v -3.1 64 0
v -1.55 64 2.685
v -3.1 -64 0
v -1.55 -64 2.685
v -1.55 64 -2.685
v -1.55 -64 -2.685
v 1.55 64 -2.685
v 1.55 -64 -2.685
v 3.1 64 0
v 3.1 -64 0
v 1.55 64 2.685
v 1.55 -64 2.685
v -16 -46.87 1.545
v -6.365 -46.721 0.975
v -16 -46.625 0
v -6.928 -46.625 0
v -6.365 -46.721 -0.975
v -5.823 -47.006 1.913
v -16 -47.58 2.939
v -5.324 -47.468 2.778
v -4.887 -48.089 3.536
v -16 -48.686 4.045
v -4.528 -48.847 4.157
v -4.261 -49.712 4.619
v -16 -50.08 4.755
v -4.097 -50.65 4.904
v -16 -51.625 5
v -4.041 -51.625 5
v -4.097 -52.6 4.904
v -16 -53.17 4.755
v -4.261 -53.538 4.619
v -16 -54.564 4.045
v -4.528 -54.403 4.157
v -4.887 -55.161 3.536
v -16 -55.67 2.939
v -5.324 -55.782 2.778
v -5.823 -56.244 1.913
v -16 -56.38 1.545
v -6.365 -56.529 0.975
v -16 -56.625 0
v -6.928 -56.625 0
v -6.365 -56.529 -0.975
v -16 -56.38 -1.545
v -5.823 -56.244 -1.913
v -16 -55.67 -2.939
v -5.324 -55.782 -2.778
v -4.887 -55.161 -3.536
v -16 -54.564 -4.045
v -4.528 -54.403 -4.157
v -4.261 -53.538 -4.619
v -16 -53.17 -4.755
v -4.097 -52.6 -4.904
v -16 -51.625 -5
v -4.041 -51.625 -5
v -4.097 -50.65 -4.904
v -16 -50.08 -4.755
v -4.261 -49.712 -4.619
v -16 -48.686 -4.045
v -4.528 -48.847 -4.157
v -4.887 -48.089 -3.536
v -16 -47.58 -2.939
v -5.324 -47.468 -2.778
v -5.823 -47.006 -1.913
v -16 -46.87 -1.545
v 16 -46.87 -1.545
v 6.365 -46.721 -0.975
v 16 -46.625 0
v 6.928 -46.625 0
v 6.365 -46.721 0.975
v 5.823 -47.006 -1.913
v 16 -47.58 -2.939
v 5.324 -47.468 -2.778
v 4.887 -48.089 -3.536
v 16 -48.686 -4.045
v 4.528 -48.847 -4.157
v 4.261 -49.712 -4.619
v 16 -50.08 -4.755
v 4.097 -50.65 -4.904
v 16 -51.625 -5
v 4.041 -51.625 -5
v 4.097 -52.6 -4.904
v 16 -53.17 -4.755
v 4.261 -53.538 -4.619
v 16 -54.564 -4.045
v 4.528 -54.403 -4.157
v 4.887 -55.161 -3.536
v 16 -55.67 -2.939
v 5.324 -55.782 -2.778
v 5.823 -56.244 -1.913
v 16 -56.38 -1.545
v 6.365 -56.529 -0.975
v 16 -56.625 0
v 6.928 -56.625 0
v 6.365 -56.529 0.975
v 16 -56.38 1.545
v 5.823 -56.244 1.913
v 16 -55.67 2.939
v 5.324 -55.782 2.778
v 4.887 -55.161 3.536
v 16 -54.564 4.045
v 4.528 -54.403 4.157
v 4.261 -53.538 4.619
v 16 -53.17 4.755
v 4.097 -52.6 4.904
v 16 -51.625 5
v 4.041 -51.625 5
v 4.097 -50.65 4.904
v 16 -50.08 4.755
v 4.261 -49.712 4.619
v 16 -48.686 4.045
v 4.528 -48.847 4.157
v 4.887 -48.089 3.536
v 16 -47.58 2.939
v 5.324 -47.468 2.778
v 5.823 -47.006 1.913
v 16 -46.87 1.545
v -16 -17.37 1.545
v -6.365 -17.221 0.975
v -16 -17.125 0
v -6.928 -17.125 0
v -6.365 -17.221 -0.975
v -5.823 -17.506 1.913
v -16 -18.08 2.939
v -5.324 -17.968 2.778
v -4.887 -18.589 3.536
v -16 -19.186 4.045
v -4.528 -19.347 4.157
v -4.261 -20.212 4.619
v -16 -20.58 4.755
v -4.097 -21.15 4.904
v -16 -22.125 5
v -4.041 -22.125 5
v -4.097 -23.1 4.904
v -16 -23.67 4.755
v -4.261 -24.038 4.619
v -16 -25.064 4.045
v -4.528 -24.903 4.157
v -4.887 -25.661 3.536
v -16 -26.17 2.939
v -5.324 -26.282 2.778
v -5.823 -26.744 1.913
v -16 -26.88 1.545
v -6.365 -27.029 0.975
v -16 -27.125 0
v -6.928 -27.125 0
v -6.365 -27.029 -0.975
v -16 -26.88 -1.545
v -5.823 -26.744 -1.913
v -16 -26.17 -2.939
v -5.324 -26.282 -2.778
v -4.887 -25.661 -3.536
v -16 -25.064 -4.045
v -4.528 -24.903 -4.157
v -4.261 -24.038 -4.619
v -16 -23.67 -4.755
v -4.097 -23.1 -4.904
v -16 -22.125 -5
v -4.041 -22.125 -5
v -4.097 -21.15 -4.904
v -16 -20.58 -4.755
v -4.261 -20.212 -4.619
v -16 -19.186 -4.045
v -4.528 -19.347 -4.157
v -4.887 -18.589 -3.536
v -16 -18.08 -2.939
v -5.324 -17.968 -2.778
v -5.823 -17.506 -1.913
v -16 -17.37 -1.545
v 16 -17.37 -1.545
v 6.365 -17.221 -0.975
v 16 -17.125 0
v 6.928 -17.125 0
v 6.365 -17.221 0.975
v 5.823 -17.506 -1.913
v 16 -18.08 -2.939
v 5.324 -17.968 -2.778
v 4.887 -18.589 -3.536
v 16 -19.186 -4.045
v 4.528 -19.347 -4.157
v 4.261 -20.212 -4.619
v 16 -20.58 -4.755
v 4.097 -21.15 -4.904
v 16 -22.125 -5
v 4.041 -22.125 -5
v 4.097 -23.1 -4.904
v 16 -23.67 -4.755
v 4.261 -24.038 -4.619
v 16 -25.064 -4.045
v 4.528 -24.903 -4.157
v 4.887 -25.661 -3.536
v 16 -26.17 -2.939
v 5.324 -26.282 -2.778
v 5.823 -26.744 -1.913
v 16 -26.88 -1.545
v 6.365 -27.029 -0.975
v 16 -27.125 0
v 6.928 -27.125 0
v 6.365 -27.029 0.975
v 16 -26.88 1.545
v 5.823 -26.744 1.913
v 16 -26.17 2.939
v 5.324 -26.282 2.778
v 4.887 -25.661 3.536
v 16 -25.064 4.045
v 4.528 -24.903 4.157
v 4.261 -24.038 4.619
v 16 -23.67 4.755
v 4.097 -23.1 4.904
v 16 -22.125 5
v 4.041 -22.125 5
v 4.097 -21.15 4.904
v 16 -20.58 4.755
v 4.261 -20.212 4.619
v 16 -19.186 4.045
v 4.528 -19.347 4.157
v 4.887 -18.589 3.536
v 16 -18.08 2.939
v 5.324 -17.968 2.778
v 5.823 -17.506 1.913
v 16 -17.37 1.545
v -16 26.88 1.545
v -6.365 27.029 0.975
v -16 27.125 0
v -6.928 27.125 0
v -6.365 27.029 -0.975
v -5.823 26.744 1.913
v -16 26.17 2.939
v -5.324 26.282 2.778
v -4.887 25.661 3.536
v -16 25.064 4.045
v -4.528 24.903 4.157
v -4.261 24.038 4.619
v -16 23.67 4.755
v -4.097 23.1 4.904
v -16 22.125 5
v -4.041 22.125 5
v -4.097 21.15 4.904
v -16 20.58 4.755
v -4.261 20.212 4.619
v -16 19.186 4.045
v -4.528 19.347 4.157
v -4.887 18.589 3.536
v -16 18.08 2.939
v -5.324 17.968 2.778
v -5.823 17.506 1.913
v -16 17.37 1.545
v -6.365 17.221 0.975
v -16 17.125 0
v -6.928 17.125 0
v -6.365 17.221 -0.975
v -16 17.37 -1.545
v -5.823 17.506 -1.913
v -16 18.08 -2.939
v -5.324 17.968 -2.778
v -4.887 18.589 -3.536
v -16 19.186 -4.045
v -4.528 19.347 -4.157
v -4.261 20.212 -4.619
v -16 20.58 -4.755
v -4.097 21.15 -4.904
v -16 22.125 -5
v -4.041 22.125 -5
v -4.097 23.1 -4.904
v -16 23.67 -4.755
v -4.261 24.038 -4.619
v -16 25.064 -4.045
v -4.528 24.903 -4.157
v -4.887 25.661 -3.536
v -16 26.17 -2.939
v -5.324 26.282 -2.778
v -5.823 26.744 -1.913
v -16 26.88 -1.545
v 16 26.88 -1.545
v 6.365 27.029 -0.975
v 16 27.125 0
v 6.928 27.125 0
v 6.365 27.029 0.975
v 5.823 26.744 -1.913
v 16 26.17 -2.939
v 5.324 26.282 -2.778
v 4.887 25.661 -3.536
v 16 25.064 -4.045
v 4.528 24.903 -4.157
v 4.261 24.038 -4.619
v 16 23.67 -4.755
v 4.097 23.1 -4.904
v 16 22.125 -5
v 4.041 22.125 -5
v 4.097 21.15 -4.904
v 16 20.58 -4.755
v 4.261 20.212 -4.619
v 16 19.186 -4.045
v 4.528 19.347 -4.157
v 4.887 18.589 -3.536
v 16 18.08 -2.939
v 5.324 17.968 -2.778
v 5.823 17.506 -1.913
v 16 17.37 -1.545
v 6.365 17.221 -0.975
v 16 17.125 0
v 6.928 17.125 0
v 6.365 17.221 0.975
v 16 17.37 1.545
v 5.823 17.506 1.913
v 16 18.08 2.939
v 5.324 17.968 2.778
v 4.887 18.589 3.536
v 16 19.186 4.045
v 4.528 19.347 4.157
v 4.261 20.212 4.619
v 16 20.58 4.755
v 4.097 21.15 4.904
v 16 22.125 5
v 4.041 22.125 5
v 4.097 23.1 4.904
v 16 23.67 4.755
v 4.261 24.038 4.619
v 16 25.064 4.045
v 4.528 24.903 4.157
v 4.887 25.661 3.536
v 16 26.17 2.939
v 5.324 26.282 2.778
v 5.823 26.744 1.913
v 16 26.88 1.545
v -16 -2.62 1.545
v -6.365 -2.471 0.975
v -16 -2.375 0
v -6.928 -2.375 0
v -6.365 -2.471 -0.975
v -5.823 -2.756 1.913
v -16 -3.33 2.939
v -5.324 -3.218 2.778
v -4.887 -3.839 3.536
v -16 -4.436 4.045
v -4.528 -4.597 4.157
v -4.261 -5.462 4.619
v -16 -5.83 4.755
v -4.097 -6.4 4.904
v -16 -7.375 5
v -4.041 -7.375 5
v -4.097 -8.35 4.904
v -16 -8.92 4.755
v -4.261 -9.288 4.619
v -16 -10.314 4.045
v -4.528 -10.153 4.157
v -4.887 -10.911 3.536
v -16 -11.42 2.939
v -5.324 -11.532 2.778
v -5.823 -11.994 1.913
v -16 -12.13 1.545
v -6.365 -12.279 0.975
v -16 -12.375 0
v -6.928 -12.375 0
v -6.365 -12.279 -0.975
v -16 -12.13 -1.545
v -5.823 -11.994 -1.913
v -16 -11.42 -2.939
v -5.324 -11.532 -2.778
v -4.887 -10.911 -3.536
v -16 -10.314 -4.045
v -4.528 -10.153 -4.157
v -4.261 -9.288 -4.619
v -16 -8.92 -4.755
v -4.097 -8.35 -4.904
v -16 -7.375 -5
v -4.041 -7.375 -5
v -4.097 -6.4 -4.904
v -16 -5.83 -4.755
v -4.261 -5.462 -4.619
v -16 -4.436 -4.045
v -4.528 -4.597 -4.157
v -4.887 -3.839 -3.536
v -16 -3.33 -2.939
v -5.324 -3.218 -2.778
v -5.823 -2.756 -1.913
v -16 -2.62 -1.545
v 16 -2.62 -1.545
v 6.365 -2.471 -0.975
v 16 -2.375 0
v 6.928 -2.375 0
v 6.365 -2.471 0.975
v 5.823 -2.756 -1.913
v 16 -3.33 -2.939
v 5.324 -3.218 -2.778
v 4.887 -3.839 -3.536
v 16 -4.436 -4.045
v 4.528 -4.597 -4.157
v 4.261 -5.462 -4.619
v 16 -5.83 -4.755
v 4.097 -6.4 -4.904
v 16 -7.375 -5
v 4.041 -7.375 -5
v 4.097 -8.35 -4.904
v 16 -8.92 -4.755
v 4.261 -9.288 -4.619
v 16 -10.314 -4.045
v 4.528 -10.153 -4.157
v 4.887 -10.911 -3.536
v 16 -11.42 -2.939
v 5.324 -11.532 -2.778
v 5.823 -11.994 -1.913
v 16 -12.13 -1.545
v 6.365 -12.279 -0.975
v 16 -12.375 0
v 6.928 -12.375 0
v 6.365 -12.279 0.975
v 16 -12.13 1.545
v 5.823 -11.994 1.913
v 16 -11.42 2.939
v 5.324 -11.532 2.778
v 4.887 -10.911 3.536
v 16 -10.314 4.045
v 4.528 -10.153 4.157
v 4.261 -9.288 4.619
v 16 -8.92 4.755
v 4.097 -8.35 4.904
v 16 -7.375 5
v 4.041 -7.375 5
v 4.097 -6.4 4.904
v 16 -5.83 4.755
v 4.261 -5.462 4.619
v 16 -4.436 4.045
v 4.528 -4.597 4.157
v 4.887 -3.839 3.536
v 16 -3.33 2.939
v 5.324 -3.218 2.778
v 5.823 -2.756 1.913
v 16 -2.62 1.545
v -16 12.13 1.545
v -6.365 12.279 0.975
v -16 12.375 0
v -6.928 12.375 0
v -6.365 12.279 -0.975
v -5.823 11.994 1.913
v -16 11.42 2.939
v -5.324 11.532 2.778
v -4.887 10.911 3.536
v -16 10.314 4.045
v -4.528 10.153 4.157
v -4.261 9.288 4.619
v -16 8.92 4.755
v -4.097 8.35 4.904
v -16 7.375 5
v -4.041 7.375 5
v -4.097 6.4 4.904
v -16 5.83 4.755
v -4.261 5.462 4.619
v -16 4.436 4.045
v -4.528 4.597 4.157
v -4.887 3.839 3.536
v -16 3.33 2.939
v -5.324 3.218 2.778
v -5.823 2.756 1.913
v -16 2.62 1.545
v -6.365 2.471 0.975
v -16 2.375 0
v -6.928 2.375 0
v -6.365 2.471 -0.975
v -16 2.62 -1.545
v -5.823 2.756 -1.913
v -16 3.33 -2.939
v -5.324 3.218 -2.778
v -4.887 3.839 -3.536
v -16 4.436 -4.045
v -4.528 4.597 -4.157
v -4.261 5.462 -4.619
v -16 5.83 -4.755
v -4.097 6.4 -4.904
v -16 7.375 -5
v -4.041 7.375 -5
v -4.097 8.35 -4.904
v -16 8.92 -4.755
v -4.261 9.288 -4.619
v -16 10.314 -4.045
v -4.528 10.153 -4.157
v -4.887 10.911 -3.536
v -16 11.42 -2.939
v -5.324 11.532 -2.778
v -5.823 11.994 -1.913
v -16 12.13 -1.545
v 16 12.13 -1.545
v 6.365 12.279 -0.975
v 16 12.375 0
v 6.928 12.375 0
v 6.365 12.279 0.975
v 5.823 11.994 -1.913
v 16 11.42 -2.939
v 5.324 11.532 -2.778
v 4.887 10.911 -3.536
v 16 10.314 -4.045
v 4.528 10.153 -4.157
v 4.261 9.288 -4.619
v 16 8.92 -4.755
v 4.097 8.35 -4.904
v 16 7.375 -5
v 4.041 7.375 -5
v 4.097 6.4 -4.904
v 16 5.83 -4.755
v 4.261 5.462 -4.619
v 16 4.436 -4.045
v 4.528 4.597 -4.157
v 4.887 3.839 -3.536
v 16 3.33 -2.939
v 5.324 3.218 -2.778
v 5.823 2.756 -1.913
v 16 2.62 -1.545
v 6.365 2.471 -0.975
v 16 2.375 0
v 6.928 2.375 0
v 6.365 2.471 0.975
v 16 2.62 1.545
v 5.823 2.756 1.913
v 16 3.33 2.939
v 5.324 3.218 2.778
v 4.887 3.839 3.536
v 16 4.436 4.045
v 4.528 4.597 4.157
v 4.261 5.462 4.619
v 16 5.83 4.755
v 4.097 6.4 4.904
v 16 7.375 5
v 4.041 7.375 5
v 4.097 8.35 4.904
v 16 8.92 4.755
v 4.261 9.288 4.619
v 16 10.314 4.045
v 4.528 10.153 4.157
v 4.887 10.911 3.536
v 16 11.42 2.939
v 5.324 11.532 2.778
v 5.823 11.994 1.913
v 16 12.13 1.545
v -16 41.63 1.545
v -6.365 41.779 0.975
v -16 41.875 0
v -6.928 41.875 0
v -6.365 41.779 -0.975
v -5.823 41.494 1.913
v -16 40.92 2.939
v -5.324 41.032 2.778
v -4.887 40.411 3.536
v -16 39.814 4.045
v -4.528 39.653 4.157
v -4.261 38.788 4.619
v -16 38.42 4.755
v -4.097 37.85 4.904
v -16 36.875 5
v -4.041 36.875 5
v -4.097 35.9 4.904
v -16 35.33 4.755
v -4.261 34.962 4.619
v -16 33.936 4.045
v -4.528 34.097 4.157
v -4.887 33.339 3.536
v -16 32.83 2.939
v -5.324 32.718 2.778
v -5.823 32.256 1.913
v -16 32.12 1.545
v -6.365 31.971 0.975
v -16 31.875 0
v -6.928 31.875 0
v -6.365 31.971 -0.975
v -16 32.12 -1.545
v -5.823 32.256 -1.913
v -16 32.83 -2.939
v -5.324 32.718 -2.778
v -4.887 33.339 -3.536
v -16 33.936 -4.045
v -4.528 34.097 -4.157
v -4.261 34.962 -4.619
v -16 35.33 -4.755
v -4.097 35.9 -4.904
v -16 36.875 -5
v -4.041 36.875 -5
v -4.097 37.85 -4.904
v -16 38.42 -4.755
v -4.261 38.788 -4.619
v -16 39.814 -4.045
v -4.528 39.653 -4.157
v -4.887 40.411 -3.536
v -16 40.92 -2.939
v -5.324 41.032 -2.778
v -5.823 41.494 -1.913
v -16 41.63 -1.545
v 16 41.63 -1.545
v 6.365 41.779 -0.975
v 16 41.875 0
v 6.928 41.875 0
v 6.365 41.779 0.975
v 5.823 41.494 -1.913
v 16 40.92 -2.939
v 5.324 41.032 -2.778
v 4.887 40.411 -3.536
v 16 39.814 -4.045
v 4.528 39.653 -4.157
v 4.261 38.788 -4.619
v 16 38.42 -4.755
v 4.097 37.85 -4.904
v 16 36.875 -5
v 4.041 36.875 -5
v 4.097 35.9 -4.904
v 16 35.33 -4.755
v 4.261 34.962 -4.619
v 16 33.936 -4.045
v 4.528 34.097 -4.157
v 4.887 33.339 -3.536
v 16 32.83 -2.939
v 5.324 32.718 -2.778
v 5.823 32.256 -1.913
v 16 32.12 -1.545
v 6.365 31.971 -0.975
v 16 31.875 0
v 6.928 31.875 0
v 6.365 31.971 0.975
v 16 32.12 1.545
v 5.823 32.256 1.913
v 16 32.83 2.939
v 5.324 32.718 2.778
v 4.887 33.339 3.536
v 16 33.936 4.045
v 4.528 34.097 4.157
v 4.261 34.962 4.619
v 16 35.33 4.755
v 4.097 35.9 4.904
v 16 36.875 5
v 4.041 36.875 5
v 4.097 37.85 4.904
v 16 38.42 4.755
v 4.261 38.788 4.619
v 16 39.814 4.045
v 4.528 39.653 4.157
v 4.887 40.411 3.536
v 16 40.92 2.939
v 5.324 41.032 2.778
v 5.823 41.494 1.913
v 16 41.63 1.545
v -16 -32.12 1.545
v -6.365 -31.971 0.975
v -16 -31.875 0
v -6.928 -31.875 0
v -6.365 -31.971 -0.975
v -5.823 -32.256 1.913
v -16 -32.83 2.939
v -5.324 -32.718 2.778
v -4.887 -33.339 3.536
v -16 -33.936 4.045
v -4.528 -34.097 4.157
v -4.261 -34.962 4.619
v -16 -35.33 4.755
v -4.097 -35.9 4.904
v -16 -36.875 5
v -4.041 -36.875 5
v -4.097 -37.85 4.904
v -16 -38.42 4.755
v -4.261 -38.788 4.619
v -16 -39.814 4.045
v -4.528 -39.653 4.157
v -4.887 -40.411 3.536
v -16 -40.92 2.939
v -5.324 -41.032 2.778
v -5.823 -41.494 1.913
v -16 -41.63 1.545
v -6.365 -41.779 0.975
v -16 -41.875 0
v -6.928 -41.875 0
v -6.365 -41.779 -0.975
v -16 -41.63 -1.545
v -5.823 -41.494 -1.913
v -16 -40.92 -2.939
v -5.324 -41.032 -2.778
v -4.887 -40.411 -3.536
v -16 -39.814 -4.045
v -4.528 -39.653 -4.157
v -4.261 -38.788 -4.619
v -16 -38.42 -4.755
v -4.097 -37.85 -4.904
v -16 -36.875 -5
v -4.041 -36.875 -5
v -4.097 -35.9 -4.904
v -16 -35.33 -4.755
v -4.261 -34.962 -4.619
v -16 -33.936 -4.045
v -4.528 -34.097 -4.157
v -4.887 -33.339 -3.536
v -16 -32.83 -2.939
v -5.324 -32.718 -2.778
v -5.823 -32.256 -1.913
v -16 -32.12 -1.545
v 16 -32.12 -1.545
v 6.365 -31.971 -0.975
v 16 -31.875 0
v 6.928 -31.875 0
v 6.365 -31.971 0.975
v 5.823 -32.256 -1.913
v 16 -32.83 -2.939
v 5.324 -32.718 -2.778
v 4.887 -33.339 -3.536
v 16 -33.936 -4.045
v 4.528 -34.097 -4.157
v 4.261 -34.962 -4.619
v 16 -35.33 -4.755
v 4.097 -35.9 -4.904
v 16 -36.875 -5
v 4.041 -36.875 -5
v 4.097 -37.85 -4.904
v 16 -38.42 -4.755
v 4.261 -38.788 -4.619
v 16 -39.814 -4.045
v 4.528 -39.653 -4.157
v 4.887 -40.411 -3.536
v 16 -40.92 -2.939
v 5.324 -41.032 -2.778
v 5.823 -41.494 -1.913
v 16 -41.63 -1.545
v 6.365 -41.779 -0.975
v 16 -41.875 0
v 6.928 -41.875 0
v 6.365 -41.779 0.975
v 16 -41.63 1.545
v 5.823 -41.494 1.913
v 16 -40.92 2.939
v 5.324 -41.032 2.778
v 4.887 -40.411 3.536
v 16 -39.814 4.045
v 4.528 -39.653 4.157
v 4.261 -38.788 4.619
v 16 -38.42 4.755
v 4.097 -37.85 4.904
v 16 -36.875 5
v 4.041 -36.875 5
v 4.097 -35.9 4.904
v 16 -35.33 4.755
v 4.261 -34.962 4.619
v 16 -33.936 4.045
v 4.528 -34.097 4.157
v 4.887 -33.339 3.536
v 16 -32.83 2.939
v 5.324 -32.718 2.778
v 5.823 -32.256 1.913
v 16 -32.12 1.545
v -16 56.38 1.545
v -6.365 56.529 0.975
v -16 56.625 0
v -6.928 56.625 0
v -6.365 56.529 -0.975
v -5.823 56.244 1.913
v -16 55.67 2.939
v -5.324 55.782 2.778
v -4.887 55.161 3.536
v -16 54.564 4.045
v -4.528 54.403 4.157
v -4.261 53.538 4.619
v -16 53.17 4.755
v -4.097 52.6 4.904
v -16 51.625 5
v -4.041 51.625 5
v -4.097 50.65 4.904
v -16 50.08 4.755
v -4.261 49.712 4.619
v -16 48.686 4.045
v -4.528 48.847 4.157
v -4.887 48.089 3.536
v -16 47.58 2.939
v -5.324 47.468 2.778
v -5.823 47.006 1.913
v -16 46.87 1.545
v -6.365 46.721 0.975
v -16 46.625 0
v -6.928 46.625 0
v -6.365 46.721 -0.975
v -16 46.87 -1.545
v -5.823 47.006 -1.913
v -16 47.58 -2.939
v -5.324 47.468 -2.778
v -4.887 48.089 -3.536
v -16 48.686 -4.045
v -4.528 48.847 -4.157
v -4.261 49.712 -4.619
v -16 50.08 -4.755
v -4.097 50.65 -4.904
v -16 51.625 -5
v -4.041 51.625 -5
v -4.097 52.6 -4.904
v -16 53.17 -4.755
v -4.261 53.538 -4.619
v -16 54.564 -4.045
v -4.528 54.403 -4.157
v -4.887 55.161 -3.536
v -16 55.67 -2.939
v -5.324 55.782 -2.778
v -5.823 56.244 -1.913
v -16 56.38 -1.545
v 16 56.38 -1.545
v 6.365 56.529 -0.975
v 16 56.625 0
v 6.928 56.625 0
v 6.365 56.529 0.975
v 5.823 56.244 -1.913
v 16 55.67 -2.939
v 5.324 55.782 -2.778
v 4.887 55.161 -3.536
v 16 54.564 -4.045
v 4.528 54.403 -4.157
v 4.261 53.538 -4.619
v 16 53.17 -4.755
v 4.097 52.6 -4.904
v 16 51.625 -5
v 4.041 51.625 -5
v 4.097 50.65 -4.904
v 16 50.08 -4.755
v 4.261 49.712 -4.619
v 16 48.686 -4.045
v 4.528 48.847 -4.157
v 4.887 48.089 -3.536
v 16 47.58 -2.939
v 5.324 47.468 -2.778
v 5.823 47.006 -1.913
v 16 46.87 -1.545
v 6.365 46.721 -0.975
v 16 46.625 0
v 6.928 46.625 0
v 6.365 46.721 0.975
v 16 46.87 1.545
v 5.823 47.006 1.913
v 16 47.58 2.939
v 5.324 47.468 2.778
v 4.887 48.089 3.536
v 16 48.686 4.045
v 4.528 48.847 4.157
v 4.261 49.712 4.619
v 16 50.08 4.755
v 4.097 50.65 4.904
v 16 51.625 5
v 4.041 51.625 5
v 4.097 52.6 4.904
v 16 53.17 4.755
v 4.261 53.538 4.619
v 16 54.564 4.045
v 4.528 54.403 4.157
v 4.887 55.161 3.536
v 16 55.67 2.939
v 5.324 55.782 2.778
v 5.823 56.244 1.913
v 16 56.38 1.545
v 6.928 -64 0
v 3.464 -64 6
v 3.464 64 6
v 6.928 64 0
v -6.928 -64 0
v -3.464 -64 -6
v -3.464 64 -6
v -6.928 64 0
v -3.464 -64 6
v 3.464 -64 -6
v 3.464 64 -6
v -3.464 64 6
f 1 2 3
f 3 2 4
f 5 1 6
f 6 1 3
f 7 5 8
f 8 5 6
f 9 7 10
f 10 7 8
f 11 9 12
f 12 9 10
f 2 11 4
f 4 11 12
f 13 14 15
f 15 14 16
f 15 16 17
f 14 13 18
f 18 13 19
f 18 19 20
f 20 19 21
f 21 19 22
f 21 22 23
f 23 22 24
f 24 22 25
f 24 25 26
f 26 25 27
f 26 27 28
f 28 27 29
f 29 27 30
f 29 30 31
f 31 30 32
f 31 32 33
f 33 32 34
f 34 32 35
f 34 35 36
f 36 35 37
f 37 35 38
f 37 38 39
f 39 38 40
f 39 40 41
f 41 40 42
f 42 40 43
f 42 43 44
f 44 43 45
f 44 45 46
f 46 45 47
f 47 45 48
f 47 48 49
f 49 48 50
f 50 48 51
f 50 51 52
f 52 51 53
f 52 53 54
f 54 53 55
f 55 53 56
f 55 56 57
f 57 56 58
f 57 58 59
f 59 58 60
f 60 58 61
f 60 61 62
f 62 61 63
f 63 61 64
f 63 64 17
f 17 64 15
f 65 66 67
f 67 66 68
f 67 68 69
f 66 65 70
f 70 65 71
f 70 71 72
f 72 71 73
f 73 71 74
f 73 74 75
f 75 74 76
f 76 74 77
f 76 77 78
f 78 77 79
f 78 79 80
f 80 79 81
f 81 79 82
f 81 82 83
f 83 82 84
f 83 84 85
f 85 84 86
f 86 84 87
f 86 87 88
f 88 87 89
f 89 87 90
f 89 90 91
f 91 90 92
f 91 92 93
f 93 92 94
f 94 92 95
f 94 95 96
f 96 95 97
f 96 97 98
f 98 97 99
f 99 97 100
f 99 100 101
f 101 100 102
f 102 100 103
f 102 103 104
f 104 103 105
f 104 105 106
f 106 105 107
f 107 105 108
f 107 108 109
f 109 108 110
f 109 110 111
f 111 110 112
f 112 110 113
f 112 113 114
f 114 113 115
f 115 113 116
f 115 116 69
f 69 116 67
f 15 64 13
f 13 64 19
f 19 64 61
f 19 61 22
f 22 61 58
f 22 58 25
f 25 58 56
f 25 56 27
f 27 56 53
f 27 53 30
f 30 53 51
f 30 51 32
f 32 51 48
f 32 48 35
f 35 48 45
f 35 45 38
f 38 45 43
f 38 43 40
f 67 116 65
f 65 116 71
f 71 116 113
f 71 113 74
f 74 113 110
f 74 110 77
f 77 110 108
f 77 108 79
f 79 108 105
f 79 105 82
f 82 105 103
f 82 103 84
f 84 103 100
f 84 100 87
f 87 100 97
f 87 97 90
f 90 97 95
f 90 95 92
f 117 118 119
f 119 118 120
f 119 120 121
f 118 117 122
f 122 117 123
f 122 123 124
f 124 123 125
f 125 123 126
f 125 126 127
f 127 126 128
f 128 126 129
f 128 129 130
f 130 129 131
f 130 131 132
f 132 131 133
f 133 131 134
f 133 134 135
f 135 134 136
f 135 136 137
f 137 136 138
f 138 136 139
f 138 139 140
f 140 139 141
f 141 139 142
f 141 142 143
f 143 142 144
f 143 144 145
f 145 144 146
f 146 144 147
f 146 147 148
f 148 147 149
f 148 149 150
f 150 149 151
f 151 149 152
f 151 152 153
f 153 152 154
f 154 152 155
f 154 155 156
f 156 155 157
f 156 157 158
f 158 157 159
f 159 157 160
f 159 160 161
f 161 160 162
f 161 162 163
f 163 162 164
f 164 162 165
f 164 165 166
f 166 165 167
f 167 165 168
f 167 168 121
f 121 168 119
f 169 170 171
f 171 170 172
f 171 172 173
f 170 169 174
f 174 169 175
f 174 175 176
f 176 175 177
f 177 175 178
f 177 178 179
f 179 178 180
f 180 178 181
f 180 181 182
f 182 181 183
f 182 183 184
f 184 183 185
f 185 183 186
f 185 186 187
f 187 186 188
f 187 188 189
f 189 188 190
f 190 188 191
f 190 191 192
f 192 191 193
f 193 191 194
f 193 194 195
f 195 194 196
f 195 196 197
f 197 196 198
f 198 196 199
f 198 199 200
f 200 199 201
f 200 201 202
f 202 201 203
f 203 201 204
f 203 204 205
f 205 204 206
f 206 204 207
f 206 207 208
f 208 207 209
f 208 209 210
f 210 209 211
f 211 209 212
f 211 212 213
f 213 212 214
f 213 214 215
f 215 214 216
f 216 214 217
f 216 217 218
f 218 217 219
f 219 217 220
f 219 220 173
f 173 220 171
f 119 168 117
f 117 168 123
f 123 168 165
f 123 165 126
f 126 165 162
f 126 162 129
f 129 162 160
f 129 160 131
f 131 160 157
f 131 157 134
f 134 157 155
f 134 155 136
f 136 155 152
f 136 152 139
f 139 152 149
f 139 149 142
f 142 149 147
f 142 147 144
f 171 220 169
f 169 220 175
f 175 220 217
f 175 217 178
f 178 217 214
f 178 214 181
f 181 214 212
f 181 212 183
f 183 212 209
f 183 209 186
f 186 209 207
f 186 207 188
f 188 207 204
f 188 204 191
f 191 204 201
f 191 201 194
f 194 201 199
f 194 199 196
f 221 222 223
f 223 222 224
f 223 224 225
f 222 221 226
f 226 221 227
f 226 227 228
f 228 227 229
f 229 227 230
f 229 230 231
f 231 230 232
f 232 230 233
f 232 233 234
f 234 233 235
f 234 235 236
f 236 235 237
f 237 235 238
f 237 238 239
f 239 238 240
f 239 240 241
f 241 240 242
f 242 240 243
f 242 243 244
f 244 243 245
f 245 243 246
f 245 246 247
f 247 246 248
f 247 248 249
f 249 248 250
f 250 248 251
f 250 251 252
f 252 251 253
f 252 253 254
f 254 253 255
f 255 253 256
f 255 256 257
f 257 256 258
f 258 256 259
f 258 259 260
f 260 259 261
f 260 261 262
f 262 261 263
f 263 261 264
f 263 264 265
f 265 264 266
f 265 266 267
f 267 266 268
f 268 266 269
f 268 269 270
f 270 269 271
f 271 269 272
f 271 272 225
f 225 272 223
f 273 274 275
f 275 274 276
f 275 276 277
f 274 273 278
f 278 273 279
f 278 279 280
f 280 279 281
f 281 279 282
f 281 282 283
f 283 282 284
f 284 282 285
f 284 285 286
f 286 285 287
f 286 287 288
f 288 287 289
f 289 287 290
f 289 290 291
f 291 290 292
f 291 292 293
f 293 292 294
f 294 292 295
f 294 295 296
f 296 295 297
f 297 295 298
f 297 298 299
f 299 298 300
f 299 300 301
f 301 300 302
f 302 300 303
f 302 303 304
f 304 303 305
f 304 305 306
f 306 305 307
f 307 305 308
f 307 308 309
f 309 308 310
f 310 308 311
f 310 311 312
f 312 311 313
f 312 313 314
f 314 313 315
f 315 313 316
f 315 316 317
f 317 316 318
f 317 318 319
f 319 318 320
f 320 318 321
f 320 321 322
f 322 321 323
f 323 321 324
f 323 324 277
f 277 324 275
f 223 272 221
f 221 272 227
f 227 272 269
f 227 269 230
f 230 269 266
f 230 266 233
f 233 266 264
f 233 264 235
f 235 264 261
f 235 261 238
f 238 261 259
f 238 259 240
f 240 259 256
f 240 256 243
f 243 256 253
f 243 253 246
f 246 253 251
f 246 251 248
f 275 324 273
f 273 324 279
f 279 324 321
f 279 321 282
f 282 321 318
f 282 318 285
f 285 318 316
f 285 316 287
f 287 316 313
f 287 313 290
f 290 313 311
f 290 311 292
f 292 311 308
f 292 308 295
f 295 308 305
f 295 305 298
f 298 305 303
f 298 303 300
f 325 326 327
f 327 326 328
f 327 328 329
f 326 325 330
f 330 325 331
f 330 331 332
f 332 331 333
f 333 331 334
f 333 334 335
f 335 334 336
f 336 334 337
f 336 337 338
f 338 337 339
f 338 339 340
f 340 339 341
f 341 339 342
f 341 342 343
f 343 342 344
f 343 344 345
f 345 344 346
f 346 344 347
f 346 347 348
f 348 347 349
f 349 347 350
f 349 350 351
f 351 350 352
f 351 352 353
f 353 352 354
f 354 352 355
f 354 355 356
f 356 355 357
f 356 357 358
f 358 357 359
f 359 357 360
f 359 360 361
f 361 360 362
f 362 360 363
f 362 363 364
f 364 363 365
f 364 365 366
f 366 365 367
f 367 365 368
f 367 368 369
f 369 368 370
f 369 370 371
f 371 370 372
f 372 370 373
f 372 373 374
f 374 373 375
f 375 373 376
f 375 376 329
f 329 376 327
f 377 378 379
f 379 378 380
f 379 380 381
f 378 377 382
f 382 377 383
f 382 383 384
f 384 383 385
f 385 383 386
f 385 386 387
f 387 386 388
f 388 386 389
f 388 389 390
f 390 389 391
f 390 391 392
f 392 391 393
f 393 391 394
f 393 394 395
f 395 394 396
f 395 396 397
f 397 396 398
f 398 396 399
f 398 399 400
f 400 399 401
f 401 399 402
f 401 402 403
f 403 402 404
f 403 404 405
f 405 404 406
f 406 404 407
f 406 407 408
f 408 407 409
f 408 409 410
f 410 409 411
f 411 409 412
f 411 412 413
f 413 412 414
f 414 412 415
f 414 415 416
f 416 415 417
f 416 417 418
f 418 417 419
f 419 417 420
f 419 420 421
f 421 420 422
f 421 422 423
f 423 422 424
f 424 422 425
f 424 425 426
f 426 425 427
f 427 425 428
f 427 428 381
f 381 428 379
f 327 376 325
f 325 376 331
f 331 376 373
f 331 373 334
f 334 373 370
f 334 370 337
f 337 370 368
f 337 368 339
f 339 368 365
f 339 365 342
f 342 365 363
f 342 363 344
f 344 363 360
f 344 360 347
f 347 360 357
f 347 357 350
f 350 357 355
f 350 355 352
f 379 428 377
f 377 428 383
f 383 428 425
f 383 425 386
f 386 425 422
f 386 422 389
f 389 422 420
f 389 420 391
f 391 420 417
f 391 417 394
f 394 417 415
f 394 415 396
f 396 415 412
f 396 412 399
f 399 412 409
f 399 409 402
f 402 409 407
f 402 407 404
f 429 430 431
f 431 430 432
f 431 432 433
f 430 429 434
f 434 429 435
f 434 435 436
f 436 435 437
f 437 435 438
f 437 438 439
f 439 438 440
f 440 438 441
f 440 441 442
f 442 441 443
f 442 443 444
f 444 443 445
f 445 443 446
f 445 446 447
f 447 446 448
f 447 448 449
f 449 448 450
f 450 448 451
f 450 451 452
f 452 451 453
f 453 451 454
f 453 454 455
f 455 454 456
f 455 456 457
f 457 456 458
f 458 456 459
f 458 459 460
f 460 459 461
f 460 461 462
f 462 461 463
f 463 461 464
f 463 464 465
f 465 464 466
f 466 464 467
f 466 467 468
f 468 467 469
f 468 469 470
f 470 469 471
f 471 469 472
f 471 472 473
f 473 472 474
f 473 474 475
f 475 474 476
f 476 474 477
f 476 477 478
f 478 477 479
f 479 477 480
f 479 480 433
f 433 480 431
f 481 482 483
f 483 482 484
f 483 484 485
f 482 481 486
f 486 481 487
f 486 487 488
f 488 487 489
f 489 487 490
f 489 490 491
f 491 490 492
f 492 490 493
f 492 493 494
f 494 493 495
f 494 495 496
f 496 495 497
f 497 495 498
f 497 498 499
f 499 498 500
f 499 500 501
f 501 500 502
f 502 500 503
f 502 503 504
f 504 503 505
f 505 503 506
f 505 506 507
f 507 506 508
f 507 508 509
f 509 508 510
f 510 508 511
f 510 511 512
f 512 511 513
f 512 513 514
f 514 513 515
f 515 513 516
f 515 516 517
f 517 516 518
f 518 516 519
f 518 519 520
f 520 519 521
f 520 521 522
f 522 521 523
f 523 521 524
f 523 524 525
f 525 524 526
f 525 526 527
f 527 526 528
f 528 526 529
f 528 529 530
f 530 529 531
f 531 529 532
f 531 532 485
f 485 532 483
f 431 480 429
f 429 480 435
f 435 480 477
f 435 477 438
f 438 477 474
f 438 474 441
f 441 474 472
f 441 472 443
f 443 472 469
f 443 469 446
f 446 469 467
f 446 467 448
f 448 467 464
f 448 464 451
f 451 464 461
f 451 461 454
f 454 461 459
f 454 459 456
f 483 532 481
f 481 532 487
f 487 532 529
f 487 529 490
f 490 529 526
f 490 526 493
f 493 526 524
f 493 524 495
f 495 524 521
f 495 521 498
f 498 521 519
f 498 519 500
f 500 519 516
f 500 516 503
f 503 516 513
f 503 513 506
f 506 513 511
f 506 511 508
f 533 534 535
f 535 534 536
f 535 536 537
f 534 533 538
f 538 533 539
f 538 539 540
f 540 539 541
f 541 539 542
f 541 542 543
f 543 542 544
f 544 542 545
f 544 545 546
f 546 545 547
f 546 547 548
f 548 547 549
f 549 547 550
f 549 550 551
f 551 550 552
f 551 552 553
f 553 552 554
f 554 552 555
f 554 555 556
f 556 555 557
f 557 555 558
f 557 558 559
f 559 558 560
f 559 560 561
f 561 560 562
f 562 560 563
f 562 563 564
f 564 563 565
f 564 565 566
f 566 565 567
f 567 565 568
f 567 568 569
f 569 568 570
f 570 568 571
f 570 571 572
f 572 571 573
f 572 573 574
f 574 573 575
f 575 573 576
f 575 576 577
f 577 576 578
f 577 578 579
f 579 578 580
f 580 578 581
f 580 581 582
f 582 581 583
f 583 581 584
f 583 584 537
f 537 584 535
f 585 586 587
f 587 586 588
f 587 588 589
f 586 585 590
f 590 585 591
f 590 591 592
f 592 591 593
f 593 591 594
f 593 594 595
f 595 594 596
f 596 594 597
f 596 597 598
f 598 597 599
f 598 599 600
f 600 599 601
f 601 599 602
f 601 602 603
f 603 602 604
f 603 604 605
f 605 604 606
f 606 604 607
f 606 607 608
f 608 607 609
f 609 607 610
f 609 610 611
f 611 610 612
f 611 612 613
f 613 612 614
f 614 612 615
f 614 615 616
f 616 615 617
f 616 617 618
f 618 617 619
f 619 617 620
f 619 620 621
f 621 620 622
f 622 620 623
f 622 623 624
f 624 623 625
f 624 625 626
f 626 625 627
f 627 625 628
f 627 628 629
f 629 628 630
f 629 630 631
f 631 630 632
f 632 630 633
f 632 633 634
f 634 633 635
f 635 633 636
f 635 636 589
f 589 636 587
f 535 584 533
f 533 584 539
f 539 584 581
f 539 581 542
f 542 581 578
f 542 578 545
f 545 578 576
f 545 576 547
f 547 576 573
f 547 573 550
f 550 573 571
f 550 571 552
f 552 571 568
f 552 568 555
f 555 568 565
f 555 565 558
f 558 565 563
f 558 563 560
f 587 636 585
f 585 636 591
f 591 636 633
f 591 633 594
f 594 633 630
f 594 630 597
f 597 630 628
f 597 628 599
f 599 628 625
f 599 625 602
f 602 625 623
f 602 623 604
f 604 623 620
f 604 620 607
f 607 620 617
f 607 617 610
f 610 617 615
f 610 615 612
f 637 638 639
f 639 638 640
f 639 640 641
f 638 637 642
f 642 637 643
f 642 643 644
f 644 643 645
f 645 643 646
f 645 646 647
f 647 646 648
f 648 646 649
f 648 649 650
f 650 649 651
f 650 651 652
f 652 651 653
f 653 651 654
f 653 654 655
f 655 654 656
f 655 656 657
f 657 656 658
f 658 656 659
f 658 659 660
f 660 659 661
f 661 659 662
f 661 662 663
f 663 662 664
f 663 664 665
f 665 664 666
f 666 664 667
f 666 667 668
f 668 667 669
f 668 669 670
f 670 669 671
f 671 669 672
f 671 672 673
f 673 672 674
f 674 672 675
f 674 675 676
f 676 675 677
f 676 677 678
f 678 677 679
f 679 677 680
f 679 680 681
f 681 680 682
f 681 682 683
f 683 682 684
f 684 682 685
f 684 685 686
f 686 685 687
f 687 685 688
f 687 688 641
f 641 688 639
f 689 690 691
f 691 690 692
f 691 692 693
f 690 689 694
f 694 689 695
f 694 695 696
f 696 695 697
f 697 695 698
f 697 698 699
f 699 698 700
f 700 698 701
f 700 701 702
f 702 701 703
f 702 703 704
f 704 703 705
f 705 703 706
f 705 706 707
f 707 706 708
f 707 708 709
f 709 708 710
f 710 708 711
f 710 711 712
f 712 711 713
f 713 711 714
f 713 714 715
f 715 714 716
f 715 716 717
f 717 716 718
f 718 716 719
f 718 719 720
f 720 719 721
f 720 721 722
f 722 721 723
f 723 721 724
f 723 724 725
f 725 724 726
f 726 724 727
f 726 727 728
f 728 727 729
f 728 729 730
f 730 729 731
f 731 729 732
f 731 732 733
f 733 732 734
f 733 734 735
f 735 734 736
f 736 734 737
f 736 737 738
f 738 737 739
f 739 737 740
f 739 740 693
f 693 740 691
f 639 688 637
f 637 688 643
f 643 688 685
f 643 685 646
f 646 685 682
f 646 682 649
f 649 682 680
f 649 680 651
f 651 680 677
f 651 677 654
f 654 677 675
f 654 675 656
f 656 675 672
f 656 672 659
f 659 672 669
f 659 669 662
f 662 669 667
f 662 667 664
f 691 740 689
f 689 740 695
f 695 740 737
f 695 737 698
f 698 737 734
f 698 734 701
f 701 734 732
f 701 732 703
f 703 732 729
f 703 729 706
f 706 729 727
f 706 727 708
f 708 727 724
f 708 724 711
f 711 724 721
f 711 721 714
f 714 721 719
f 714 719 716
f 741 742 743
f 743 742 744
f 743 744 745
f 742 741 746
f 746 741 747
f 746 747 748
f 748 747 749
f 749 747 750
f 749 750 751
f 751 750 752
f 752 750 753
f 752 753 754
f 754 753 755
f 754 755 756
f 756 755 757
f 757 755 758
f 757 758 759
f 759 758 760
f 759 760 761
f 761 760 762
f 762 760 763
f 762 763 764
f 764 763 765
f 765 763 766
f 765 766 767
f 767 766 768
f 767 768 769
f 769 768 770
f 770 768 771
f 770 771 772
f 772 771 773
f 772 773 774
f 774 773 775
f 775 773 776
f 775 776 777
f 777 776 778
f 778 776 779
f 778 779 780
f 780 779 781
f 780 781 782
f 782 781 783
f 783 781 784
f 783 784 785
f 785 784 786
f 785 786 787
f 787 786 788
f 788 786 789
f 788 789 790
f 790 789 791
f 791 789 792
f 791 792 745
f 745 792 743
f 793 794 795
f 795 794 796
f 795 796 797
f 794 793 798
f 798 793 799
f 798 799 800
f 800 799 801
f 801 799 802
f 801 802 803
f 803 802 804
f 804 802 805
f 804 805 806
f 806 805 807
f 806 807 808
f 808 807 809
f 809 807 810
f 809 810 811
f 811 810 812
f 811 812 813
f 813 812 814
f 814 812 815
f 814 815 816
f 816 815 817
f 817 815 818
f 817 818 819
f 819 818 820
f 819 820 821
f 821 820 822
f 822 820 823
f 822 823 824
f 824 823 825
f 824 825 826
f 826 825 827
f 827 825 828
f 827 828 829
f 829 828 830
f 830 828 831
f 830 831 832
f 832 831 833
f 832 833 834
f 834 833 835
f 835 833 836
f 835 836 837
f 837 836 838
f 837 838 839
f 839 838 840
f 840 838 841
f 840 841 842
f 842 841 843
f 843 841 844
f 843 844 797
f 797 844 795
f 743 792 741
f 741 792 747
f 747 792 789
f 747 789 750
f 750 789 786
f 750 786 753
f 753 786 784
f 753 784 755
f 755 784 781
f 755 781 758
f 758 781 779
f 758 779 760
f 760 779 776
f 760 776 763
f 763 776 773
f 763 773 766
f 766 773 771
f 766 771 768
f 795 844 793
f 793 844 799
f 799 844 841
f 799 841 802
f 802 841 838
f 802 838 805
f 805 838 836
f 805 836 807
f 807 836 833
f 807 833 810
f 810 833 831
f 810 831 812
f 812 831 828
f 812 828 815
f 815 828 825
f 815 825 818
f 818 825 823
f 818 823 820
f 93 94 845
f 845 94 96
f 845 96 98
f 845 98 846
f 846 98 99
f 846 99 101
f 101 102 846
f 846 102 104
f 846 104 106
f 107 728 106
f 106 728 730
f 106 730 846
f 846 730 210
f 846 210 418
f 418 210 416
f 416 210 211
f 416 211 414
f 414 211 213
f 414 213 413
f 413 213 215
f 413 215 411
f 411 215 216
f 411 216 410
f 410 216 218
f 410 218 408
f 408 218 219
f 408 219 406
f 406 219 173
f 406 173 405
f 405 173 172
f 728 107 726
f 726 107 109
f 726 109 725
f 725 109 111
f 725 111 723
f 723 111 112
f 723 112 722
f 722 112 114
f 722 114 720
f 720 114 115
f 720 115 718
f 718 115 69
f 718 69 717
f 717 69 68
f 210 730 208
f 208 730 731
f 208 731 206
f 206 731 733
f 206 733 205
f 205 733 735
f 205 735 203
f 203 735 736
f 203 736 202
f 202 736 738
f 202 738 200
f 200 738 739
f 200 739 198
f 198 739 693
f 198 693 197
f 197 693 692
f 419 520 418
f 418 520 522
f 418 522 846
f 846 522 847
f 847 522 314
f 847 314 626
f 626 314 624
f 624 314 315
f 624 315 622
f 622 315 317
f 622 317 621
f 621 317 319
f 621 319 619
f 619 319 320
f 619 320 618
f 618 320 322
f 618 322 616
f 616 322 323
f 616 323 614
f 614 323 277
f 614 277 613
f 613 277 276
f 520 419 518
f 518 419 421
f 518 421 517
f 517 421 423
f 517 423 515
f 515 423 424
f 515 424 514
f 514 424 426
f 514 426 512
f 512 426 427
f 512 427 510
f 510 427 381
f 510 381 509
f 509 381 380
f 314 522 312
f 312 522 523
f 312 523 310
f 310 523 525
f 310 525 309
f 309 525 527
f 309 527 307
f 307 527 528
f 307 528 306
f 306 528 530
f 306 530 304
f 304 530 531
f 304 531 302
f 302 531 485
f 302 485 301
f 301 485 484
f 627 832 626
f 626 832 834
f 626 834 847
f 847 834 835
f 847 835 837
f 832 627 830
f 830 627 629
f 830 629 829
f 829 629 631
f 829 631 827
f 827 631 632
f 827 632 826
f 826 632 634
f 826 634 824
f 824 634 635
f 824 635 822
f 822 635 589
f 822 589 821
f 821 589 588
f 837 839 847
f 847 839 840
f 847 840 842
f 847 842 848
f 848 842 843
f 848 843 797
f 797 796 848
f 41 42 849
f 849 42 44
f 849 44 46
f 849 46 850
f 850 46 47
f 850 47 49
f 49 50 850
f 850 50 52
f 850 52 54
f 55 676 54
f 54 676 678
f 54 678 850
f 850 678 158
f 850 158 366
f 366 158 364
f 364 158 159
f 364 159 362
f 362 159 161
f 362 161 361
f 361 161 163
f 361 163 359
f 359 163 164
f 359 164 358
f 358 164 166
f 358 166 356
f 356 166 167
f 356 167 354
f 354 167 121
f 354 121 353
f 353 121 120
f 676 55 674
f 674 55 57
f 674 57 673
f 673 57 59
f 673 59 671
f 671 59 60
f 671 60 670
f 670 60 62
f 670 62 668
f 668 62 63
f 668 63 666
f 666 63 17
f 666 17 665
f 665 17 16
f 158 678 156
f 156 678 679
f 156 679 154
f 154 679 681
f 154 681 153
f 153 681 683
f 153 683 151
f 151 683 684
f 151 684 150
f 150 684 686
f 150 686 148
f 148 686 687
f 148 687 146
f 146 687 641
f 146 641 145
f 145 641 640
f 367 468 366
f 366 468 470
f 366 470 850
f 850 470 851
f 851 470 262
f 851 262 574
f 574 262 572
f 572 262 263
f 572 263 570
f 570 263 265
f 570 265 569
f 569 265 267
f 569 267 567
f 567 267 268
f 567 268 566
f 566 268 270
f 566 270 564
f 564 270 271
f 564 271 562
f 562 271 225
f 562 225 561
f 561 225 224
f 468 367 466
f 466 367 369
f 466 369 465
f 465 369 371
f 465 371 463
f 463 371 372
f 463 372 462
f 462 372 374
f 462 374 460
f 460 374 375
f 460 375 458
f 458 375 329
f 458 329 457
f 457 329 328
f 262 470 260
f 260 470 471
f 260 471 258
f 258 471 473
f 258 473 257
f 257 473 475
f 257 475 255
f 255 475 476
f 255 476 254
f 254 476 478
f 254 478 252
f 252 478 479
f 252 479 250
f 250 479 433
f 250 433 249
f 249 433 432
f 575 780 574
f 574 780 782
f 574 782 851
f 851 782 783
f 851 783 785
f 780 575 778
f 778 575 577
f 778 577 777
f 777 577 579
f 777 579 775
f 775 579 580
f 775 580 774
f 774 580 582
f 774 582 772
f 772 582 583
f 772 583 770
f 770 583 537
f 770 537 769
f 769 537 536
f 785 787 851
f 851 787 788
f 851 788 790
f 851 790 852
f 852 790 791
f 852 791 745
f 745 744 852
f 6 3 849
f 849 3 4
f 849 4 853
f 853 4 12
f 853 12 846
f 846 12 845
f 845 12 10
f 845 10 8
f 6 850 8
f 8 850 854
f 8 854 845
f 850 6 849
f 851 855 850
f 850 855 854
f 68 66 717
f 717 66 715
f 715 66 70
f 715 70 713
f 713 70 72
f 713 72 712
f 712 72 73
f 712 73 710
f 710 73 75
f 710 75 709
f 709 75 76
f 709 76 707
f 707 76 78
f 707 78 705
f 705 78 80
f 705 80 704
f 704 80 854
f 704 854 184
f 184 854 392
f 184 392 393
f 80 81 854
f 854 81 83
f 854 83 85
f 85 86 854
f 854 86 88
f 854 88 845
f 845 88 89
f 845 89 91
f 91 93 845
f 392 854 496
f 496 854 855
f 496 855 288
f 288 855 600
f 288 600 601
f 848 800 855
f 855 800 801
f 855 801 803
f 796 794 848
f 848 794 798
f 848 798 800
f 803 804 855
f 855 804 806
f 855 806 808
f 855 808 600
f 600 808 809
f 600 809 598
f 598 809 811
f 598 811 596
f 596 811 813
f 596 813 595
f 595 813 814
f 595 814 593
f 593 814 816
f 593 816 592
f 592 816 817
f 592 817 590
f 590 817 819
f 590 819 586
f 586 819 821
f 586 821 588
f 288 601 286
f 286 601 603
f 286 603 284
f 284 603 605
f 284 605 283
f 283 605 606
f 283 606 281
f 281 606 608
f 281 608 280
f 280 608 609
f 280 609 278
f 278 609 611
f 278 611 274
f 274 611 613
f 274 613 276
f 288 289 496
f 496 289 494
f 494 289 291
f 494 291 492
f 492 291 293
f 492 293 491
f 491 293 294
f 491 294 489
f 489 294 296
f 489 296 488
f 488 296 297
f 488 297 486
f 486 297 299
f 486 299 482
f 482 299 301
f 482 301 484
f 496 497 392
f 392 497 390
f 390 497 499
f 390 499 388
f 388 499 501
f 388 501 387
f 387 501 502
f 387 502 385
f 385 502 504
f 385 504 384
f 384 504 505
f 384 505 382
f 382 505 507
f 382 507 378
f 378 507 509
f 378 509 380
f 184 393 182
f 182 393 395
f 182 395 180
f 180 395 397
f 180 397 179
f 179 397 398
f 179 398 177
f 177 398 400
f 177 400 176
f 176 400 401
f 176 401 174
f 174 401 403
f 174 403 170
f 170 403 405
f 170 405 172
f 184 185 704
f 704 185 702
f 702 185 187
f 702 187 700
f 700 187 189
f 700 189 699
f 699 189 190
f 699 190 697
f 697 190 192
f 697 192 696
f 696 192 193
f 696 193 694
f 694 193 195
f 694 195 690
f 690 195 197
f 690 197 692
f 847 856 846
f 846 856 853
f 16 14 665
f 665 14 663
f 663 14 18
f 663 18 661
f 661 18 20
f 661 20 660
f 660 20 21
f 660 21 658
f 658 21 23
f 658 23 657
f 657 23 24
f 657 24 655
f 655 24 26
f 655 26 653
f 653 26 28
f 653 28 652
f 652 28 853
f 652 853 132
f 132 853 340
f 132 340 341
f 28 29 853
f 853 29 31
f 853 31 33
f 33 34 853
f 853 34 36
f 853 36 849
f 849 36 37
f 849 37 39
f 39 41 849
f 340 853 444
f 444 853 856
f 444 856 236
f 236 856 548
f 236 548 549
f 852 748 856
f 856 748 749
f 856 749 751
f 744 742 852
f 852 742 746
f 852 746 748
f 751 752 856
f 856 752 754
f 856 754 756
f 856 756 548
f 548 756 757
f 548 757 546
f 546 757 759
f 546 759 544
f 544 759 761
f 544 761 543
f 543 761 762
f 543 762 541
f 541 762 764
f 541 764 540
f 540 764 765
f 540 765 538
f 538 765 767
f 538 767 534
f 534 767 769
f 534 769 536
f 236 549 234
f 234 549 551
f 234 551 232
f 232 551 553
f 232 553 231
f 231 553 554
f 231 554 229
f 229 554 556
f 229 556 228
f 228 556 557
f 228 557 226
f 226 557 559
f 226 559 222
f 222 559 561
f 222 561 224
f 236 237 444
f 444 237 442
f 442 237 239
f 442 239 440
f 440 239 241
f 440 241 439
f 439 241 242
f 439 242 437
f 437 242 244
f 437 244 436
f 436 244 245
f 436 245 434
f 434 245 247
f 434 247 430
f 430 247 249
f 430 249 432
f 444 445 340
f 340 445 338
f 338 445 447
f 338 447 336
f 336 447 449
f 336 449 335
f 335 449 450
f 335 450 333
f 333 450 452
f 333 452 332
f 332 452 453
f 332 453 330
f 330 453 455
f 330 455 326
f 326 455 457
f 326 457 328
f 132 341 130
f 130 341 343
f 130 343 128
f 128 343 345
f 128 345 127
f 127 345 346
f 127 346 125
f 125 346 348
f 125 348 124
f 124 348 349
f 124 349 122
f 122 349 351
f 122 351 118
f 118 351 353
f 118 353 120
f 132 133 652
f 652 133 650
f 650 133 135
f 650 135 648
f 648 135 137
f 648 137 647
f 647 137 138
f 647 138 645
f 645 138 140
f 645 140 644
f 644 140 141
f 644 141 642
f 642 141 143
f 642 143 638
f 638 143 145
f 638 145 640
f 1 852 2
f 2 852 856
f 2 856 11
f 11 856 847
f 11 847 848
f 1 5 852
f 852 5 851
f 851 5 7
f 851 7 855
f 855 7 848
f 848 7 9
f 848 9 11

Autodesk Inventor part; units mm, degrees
ref_plane "YZ Plane" through (0, 0, 0) normal (1, 0, 0) x (0, 1, 0)
ref_plane "XZ Plane" through (0, 0, 0) normal (0, 1, 0) x (-1, 0, 0)
ref_plane "XY Plane" through (0, 0, 0) normal (0, 0, 1) x (1, 0, 0)
sketch "Outer Diameter Sketch" plane through (0, 0, 0) normal (0, 1, 0) x (-1, 0, 0)
  line L0 (0, -28.0163) -> (0, 28.3344) construction
  line L1 (17.1062, 0) -> (-23.8822, 0) construction
  line L2 (3.4641, -6) -> (6.9282, 0)
  line L3 (6.9282, 0) -> (3.4641, 6)
  line L4 (3.4641, 6) -> (-3.4641, 6)
  line L5 (-3.4641, 6) -> (-6.9282, 0)
  line L6 (-6.9282, 0) -> (-3.4641, -6)
  line L7 (-3.4641, -6) -> (3.4641, -6)
  line L8 (0, -6) -> (0, 6) construction
  line L9 (-6.9282, 0) -> (6.9282, 0) construction
  point P0 (0, 0)
  dimension "d23" = 120
  dimension "d25" = 120
  dimension "d27" = 120
  dimension "d29" = 120
  dimension "d31" = 120
  dimension "d32" = 12
extrude "Outer Diameter Extrusion" add sketch "Outer Diameter Sketch" along normal mid plane 128
sketch "Sketch2" plane through (0, 0, 0) normal (1, 0, 0) x (0, 1, 0)
  circle A0 centre (-7.375, 0) radius 5
  line L0 (-71.375, 0) -> (-7.375, 0) construction
  line L1 (-7.375, 0) -> (56.625, 0) construction
  circle A1 centre (7.375, 0) radius 5
  circle A2 centre (22.125, 0) radius 5
  circle A3 centre (36.875, 0) radius 5
  circle A4 centre (-22.125, 0) radius 5
  circle A5 centre (-7.375, 0) radius 5
  circle A6 centre (7.375, 0) radius 5
  circle A7 centre (22.125, 0) radius 5
  circle A8 centre (-36.875, 0) radius 5
  circle A9 centre (-22.125, 0) radius 5
  circle A10 centre (-7.375, 0) radius 5
  circle A11 centre (7.375, 0) radius 5
  circle A12 centre (-51.625, 0) radius 5
  circle A13 centre (-36.875, 0) radius 5
  circle A14 centre (-22.125, 0) radius 5
  circle A15 centre (-7.375, 0) radius 5
  line L2 (0, 54.0285) -> (0, -72.3739) construction
  circle A16 centre (51.625, 0) radius 5
  circle A17 centre (36.875, 0) radius 5
  circle A18 centre (22.125, 0) radius 5
  circle A19 centre (7.375, 0) radius 5
  dimension "d3" = 10
  dimension "d5" = 128
  dimension "d8" = 14.75
  dimension "d11" = 14.75
  dimension "d47" = 7.375
  dimension "d48" = 7.375
extrude "Peg Extrusions" add sketch "Sketch2" along normal mid plane 32
sketch "Sketch3" plane through (0, -64, 0) normal (0, -1, 0) x (1, 0, 0)
  line L0 (1.55, -2.6847) -> (-1.55, -2.6847)
  line L1 (-1.55, -2.6847) -> (-3.1, 0)
  line L2 (-3.1, 0) -> (-1.55, 2.6847)
  line L3 (-1.55, 2.6847) -> (1.55, 2.6847)
  line L4 (1.55, 2.6847) -> (3.1, 0)
  line L5 (3.1, 0) -> (1.55, -2.6847)
  line L6 (3.1, 0) -> (-3.1, 0) construction
  line L7 (0, 2.6847) -> (0, -2.6847) construction
  line L8 (10.3659, 0) -> (-11.745, 0) construction
  line L9 (0, -9.4896) -> (0, 9.303) construction
  point P0 (0, 0)
  dimension "d33" = 3.1
  dimension "d34" = 3.1
  dimension "d35" = 120
  dimension "d36" = 3.1
  dimension "d37" = 120
  dimension "d38" = 3.1
  dimension "d39" = 120
  dimension "d40" = 3.1
  dimension "d41" = 120
extrude "Inner Hex Cut" cut sketch "Sketch3" against normal up to surface (128 mm away)
equation "\"d1\" = outL"
equation "\"d3\" = pegD"
equation "\"d5\" = outL"
equation "\"d47\" = 0.5 * d8"
equation "\"d14\" = pegL + 2 * outD"
equation "\"d33\" = inhexSL"
equation "\"d34\" = inhexSL"
equation "\"d36\" = inhexSL"
equation "\"d38\" = inhexSL"
equation "\"d40\" = inhexSL"
equation "\"d42\" = pegL + 2 * outD"
equation "\"outD\" = 12"
equation "\"inhexSL\" = 3.1"
equation "\"outL\" = 128"
equation "\"pegL\" = 8"
equation "\"pegD\" = 10"
equation "\"outhexSL\" = 5"
properties part number "Peg Spinner V4"
